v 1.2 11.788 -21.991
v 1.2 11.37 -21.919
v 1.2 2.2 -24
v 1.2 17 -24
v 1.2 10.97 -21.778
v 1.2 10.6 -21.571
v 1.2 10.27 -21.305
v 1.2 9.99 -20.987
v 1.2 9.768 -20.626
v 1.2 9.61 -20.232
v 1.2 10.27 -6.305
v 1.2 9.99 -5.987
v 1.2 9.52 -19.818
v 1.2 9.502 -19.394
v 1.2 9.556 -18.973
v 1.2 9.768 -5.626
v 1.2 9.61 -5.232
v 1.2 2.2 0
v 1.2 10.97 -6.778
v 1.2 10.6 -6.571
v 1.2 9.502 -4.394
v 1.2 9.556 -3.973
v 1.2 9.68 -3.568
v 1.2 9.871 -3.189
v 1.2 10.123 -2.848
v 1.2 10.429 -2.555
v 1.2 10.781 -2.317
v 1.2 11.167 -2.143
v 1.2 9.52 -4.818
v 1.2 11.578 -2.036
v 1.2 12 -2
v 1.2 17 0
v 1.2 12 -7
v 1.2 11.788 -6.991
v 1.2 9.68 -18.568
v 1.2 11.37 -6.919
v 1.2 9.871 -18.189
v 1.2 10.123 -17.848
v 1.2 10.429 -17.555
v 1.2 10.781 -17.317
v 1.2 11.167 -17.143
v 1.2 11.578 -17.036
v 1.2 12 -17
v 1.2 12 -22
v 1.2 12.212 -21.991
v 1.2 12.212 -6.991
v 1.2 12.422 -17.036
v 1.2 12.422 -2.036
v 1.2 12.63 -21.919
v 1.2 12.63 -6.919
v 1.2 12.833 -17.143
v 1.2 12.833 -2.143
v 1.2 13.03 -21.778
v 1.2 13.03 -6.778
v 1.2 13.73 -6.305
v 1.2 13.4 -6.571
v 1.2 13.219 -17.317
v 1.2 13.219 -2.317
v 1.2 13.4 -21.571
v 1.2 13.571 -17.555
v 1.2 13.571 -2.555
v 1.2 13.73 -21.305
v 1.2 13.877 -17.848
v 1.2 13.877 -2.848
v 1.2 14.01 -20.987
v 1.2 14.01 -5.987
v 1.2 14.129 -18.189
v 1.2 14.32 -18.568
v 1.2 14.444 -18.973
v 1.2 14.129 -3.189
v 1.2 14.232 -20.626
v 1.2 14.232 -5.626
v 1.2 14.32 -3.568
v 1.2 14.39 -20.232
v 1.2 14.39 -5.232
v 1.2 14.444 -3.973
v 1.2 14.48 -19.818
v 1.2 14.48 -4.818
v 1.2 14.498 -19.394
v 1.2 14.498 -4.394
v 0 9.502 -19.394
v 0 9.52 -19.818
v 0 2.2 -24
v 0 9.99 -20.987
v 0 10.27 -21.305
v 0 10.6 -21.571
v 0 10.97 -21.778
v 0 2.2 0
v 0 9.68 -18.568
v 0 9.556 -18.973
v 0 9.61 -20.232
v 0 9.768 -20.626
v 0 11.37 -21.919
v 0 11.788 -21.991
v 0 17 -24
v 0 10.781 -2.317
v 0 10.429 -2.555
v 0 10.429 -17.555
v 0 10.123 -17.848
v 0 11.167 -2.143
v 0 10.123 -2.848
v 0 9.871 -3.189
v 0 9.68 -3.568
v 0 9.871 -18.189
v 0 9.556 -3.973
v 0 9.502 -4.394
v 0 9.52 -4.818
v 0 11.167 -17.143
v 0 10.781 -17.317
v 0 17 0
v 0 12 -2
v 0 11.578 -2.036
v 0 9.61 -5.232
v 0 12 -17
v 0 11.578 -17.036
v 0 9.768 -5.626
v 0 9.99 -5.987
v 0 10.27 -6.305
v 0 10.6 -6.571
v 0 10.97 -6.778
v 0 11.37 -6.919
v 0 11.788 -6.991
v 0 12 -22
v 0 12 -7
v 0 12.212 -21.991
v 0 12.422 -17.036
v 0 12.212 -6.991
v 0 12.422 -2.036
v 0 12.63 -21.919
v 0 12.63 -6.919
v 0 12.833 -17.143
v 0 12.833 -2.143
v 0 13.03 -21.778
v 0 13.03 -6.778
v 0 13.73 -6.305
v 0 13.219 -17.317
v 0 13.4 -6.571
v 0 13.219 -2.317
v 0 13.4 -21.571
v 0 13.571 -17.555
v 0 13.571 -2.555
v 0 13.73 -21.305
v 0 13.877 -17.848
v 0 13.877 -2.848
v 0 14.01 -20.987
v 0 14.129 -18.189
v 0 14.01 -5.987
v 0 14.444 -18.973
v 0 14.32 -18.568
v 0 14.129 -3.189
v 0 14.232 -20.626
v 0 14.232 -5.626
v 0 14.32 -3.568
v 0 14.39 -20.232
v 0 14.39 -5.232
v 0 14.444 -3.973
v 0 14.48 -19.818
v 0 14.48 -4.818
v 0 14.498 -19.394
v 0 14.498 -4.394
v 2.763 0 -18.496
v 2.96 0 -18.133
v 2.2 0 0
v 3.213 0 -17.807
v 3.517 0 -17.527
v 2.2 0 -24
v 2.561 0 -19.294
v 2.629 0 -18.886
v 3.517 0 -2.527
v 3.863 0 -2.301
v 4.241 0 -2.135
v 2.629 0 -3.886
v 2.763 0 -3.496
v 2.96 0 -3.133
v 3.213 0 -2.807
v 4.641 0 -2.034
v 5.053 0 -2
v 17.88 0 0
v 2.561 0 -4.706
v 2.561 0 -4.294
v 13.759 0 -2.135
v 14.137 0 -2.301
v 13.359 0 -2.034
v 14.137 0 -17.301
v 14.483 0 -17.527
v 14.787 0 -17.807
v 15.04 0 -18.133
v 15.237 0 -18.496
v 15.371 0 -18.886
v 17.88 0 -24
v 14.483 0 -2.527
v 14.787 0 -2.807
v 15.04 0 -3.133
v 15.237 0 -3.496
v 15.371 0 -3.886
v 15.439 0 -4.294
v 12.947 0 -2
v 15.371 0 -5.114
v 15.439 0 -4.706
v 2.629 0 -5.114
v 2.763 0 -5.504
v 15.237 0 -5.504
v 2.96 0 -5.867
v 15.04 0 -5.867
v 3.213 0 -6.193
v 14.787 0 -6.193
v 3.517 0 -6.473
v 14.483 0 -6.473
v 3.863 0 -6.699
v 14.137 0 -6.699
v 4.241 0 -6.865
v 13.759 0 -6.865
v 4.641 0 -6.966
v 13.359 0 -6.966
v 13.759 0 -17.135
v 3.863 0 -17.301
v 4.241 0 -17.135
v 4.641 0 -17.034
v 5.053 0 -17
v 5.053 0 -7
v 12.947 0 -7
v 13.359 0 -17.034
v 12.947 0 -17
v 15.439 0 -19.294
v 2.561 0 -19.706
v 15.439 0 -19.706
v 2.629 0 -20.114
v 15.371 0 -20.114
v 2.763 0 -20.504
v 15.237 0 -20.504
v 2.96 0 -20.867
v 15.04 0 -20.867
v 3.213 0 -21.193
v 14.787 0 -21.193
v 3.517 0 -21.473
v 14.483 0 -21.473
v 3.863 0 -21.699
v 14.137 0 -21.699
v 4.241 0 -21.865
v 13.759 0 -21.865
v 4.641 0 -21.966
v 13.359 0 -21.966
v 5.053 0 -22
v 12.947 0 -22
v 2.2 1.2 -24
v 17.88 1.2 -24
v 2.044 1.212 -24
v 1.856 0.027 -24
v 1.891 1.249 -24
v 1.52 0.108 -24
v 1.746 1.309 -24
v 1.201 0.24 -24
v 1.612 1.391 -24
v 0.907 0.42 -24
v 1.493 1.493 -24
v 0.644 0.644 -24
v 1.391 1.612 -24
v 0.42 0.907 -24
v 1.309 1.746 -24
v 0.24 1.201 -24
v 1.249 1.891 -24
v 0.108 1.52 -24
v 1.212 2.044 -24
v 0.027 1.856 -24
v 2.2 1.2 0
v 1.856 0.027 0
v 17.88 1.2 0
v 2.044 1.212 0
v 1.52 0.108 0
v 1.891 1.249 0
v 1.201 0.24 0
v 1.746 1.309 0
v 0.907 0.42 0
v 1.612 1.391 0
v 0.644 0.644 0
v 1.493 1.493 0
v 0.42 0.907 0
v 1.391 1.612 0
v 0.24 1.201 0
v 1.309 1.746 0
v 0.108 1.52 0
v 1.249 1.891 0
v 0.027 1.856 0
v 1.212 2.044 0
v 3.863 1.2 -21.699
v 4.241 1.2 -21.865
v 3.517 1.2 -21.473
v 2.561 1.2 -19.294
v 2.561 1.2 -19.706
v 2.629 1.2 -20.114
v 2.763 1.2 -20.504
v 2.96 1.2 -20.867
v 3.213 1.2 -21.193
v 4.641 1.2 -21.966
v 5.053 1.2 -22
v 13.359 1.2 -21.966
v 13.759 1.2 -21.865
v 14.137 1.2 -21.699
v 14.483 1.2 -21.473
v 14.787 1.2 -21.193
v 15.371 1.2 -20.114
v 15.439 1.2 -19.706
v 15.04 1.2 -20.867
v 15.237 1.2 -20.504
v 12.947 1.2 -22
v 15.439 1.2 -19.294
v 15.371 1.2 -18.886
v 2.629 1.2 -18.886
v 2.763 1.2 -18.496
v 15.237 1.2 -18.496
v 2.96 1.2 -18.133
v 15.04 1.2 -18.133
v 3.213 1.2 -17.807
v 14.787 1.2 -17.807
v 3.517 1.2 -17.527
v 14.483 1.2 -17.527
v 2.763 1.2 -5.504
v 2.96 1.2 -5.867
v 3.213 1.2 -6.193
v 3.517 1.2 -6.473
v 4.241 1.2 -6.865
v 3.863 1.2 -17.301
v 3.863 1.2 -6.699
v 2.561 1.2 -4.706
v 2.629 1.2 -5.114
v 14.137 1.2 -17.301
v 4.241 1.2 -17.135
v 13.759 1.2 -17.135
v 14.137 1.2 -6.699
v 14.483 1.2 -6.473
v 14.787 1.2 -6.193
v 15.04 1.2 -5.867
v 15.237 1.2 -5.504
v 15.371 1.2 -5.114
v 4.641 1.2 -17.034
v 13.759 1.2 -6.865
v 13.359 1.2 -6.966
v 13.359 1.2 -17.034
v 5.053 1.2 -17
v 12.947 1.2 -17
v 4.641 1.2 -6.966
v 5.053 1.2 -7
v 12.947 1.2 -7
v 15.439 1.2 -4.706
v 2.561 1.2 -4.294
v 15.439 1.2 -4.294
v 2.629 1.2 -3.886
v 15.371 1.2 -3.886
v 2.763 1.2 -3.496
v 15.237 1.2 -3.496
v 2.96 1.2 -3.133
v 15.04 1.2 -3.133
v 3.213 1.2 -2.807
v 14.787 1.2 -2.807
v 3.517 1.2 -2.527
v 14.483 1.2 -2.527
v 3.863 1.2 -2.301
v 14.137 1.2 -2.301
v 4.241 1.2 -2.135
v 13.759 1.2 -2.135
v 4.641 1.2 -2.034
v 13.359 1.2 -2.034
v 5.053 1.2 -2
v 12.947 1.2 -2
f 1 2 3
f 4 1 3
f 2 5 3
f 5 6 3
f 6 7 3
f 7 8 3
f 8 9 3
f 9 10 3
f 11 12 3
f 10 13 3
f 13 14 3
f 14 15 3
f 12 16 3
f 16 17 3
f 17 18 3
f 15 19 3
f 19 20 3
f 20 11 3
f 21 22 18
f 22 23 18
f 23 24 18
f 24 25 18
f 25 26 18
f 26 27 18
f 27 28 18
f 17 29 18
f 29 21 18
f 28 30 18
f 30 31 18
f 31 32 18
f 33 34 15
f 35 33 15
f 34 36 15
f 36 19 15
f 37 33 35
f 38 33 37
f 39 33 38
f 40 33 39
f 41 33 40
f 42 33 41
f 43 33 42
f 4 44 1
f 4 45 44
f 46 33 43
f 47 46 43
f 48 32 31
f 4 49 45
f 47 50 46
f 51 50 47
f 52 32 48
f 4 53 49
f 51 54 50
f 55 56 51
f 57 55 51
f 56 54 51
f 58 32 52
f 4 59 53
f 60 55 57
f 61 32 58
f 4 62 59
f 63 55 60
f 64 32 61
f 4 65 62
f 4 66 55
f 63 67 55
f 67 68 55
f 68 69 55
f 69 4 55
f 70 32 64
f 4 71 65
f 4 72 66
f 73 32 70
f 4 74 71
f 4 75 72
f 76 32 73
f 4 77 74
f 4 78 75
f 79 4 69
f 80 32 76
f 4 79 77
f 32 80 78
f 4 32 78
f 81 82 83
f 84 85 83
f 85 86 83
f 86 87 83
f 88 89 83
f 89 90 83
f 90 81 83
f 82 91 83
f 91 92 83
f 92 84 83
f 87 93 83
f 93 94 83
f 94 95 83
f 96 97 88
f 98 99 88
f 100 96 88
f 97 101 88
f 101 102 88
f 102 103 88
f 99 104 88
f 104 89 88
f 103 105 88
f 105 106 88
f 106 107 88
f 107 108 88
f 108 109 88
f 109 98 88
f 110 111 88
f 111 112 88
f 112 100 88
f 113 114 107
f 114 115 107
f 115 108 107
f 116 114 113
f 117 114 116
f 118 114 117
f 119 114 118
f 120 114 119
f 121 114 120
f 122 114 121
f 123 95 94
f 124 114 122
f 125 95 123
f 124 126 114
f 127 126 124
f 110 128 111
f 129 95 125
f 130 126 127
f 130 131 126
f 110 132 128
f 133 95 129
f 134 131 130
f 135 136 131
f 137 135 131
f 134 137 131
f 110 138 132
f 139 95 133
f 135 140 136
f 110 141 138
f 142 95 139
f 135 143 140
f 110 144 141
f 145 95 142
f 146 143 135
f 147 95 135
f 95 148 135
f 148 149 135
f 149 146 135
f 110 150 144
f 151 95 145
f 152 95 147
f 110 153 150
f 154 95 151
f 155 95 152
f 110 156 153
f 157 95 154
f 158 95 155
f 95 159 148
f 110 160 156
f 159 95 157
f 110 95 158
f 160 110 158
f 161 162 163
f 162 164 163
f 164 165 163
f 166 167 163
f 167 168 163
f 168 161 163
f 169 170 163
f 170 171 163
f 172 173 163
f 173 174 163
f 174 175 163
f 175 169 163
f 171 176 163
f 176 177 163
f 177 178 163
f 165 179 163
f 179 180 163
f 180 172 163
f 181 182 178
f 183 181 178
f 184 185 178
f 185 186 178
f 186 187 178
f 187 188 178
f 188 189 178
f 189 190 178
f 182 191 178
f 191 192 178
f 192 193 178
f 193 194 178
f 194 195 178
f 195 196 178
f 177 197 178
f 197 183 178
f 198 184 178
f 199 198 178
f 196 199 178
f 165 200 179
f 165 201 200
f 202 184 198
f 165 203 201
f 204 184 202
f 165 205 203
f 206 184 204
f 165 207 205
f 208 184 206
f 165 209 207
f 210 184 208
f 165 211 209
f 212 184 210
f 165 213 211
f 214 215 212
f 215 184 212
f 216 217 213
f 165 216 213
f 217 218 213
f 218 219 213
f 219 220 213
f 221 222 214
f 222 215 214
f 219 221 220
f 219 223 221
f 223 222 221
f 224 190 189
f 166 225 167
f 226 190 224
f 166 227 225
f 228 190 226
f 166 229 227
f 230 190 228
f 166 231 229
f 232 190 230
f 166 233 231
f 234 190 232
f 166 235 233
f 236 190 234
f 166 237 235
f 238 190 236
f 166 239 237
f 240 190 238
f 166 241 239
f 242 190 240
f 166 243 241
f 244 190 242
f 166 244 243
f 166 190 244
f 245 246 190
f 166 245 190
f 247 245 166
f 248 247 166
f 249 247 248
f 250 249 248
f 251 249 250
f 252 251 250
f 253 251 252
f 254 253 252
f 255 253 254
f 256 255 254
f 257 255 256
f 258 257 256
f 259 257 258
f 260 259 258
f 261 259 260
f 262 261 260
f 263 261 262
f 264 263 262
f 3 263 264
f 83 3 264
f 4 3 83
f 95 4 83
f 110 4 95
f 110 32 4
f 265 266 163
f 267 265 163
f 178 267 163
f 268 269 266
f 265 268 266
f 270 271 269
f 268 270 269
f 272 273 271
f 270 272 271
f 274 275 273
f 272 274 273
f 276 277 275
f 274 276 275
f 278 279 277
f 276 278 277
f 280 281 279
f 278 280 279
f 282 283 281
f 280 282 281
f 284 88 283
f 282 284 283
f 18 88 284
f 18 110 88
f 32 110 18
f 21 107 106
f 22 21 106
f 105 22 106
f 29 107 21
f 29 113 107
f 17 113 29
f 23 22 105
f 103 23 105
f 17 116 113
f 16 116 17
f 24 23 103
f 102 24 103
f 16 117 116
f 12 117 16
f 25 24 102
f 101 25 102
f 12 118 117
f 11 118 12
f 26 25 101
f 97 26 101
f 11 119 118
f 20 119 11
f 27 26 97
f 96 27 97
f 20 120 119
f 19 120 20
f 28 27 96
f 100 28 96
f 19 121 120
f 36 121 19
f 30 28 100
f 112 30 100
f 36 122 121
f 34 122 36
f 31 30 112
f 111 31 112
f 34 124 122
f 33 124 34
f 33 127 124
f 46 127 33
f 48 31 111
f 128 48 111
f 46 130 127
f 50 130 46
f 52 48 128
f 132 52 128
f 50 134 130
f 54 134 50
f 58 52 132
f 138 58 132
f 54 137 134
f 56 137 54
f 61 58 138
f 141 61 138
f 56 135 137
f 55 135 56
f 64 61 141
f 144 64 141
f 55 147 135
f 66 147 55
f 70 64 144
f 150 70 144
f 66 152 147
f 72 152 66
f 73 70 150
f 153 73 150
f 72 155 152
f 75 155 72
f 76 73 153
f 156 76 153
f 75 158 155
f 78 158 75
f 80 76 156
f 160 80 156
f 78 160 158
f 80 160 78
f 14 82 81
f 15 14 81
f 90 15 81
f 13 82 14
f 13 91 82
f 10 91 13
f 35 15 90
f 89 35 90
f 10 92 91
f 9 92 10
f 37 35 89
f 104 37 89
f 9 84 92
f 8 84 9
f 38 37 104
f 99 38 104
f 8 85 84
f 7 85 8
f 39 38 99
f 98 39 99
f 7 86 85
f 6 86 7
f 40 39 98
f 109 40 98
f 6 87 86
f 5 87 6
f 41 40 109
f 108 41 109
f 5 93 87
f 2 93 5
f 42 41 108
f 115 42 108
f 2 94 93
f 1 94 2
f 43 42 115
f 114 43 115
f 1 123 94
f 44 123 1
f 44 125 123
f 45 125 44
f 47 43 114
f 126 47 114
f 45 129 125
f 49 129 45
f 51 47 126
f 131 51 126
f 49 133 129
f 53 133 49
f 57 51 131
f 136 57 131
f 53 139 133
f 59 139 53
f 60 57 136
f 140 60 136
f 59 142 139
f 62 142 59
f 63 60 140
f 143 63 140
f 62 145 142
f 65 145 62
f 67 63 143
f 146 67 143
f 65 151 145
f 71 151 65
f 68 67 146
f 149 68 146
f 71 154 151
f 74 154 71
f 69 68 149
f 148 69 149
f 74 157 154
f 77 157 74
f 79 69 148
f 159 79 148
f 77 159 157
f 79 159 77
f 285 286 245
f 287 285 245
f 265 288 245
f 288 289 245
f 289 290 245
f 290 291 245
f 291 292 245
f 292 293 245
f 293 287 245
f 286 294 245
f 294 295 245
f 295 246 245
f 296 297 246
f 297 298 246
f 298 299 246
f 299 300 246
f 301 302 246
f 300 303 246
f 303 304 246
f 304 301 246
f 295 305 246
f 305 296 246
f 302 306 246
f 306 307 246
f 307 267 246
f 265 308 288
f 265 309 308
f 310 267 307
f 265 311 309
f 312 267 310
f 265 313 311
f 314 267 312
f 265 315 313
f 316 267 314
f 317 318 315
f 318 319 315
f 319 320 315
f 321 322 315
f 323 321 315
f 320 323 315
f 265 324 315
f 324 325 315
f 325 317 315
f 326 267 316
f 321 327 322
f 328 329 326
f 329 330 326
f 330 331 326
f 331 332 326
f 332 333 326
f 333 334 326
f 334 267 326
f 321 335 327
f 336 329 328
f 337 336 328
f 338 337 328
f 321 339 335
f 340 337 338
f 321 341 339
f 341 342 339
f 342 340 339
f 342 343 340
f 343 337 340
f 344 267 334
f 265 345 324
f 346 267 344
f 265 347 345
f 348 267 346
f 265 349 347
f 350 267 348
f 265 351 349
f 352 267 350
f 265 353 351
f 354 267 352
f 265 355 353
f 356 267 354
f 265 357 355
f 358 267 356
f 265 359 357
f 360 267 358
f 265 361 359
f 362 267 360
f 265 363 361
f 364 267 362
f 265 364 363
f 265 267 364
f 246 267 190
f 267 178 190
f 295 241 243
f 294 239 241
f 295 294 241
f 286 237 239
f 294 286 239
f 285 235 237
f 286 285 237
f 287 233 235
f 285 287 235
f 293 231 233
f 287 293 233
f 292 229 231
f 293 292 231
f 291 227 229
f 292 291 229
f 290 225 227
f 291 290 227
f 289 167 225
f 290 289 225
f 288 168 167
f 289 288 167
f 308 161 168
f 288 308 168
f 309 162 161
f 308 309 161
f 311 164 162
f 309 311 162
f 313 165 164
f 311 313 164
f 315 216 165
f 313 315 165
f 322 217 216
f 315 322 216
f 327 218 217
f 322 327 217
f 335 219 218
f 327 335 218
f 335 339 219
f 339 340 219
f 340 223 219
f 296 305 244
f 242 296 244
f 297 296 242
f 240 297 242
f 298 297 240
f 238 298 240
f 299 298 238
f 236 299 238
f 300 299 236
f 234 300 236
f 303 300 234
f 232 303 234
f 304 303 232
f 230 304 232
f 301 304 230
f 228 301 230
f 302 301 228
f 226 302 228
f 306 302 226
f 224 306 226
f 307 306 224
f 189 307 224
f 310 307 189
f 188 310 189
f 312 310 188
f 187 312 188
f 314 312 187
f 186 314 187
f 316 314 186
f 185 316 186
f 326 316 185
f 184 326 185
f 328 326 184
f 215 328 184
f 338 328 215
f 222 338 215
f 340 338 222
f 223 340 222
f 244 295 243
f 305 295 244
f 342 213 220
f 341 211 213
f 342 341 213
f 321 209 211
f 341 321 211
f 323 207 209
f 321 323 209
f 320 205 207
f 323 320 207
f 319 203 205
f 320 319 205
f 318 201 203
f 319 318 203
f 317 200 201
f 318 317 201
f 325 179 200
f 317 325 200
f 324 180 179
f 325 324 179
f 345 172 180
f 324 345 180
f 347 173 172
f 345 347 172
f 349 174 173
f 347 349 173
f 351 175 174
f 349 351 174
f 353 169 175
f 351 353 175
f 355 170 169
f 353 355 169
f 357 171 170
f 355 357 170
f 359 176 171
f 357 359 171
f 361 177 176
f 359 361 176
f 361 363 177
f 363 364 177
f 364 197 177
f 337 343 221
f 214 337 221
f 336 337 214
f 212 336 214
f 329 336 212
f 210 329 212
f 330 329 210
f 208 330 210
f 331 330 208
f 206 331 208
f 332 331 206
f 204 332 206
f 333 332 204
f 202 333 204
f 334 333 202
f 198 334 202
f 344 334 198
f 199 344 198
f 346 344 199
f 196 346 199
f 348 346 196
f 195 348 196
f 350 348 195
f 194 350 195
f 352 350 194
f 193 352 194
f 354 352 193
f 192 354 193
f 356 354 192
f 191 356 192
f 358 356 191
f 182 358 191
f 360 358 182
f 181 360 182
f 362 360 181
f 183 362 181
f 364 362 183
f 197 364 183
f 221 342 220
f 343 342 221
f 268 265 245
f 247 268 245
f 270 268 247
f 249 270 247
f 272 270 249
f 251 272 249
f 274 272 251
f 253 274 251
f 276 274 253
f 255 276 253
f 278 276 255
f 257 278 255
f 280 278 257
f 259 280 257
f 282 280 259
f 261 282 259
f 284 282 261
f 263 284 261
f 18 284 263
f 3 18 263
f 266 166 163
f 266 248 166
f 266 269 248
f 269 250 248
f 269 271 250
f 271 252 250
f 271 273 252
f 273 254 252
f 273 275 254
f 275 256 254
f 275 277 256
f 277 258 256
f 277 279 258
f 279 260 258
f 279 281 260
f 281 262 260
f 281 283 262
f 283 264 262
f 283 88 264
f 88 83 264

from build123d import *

# Parameters (mm, degrees)
SKETCH1_W           = 24
SKETCH1_H           = 17
SKETCH1_R           = 2.5
BOSS_EXTRUDE1_DEPTH = 1.2
SKETCH3_W           = 17.88
SKETCH3_H           = 24
BOSS_EXTRUDE3_DEPTH = 1.2
FILLET1_R           = 1
FILLET2_R           = 2.2


with BuildPart() as part:
    # Sketch1 → Boss-Extrude1 (new body)
    with BuildSketch(Plane(origin=(0, 0, 0), x_dir=(0, 0, -1), z_dir=(1, 0, 0))):
        with Locations((12, 8.5)):
            Rectangle(SKETCH1_W, SKETCH1_H)
        with Locations((4.5, 12)):
            Circle(SKETCH1_R, mode=Mode.SUBTRACT)
        with Locations((19.5, 12)):
            Circle(SKETCH1_R, mode=Mode.SUBTRACT)
    extrude(amount=BOSS_EXTRUDE1_DEPTH)

    # Sketch3 → Boss-Extrude3 (add)
    with BuildSketch(Plane(origin=(0, 0, 0), x_dir=(1, 0, 0), z_dir=(0, 1, 0))):
        with Locations((8.94, 12)):
            Rectangle(SKETCH3_W, SKETCH3_H)
        with BuildLine():
            Line((5.052758316, 22), (12.947241684, 22))
            ThreePointArc((12.947241684, 22), (15.447241684, 19.5), (12.947241684, 17))
            Line((12.947241684, 17), (5.052758316, 17))
            ThreePointArc((5.052758316, 17), (2.552758316, 19.5), (5.052758316, 22))
        make_face(mode=Mode.SUBTRACT)
        with BuildLine():
            Line((5.052758316, 7), (12.947241684, 7))
            ThreePointArc((12.947241684, 7), (15.447241684, 4.5), (12.947241684, 2))
            Line((12.947241684, 2), (5.052758316, 2))
            ThreePointArc((5.052758316, 2), (2.552758316, 4.5), (5.052758316, 7))
        make_face(mode=Mode.SUBTRACT)
    extrude(amount=BOSS_EXTRUDE3_DEPTH)

    # Fillet1
    fillet1_edges = [part.edges().sort_by_distance(p)[0] for p in [
        (1.2, 1.2, -12),
    ]]
    fillet(fillet1_edges, radius=FILLET1_R)

    # Fillet2
    fillet2_edges = [part.edges().sort_by_distance(p)[0] for p in [
        (0, 0, -12),
    ]]
    fillet(fillet2_edges, radius=FILLET2_R)


solid = part.part
